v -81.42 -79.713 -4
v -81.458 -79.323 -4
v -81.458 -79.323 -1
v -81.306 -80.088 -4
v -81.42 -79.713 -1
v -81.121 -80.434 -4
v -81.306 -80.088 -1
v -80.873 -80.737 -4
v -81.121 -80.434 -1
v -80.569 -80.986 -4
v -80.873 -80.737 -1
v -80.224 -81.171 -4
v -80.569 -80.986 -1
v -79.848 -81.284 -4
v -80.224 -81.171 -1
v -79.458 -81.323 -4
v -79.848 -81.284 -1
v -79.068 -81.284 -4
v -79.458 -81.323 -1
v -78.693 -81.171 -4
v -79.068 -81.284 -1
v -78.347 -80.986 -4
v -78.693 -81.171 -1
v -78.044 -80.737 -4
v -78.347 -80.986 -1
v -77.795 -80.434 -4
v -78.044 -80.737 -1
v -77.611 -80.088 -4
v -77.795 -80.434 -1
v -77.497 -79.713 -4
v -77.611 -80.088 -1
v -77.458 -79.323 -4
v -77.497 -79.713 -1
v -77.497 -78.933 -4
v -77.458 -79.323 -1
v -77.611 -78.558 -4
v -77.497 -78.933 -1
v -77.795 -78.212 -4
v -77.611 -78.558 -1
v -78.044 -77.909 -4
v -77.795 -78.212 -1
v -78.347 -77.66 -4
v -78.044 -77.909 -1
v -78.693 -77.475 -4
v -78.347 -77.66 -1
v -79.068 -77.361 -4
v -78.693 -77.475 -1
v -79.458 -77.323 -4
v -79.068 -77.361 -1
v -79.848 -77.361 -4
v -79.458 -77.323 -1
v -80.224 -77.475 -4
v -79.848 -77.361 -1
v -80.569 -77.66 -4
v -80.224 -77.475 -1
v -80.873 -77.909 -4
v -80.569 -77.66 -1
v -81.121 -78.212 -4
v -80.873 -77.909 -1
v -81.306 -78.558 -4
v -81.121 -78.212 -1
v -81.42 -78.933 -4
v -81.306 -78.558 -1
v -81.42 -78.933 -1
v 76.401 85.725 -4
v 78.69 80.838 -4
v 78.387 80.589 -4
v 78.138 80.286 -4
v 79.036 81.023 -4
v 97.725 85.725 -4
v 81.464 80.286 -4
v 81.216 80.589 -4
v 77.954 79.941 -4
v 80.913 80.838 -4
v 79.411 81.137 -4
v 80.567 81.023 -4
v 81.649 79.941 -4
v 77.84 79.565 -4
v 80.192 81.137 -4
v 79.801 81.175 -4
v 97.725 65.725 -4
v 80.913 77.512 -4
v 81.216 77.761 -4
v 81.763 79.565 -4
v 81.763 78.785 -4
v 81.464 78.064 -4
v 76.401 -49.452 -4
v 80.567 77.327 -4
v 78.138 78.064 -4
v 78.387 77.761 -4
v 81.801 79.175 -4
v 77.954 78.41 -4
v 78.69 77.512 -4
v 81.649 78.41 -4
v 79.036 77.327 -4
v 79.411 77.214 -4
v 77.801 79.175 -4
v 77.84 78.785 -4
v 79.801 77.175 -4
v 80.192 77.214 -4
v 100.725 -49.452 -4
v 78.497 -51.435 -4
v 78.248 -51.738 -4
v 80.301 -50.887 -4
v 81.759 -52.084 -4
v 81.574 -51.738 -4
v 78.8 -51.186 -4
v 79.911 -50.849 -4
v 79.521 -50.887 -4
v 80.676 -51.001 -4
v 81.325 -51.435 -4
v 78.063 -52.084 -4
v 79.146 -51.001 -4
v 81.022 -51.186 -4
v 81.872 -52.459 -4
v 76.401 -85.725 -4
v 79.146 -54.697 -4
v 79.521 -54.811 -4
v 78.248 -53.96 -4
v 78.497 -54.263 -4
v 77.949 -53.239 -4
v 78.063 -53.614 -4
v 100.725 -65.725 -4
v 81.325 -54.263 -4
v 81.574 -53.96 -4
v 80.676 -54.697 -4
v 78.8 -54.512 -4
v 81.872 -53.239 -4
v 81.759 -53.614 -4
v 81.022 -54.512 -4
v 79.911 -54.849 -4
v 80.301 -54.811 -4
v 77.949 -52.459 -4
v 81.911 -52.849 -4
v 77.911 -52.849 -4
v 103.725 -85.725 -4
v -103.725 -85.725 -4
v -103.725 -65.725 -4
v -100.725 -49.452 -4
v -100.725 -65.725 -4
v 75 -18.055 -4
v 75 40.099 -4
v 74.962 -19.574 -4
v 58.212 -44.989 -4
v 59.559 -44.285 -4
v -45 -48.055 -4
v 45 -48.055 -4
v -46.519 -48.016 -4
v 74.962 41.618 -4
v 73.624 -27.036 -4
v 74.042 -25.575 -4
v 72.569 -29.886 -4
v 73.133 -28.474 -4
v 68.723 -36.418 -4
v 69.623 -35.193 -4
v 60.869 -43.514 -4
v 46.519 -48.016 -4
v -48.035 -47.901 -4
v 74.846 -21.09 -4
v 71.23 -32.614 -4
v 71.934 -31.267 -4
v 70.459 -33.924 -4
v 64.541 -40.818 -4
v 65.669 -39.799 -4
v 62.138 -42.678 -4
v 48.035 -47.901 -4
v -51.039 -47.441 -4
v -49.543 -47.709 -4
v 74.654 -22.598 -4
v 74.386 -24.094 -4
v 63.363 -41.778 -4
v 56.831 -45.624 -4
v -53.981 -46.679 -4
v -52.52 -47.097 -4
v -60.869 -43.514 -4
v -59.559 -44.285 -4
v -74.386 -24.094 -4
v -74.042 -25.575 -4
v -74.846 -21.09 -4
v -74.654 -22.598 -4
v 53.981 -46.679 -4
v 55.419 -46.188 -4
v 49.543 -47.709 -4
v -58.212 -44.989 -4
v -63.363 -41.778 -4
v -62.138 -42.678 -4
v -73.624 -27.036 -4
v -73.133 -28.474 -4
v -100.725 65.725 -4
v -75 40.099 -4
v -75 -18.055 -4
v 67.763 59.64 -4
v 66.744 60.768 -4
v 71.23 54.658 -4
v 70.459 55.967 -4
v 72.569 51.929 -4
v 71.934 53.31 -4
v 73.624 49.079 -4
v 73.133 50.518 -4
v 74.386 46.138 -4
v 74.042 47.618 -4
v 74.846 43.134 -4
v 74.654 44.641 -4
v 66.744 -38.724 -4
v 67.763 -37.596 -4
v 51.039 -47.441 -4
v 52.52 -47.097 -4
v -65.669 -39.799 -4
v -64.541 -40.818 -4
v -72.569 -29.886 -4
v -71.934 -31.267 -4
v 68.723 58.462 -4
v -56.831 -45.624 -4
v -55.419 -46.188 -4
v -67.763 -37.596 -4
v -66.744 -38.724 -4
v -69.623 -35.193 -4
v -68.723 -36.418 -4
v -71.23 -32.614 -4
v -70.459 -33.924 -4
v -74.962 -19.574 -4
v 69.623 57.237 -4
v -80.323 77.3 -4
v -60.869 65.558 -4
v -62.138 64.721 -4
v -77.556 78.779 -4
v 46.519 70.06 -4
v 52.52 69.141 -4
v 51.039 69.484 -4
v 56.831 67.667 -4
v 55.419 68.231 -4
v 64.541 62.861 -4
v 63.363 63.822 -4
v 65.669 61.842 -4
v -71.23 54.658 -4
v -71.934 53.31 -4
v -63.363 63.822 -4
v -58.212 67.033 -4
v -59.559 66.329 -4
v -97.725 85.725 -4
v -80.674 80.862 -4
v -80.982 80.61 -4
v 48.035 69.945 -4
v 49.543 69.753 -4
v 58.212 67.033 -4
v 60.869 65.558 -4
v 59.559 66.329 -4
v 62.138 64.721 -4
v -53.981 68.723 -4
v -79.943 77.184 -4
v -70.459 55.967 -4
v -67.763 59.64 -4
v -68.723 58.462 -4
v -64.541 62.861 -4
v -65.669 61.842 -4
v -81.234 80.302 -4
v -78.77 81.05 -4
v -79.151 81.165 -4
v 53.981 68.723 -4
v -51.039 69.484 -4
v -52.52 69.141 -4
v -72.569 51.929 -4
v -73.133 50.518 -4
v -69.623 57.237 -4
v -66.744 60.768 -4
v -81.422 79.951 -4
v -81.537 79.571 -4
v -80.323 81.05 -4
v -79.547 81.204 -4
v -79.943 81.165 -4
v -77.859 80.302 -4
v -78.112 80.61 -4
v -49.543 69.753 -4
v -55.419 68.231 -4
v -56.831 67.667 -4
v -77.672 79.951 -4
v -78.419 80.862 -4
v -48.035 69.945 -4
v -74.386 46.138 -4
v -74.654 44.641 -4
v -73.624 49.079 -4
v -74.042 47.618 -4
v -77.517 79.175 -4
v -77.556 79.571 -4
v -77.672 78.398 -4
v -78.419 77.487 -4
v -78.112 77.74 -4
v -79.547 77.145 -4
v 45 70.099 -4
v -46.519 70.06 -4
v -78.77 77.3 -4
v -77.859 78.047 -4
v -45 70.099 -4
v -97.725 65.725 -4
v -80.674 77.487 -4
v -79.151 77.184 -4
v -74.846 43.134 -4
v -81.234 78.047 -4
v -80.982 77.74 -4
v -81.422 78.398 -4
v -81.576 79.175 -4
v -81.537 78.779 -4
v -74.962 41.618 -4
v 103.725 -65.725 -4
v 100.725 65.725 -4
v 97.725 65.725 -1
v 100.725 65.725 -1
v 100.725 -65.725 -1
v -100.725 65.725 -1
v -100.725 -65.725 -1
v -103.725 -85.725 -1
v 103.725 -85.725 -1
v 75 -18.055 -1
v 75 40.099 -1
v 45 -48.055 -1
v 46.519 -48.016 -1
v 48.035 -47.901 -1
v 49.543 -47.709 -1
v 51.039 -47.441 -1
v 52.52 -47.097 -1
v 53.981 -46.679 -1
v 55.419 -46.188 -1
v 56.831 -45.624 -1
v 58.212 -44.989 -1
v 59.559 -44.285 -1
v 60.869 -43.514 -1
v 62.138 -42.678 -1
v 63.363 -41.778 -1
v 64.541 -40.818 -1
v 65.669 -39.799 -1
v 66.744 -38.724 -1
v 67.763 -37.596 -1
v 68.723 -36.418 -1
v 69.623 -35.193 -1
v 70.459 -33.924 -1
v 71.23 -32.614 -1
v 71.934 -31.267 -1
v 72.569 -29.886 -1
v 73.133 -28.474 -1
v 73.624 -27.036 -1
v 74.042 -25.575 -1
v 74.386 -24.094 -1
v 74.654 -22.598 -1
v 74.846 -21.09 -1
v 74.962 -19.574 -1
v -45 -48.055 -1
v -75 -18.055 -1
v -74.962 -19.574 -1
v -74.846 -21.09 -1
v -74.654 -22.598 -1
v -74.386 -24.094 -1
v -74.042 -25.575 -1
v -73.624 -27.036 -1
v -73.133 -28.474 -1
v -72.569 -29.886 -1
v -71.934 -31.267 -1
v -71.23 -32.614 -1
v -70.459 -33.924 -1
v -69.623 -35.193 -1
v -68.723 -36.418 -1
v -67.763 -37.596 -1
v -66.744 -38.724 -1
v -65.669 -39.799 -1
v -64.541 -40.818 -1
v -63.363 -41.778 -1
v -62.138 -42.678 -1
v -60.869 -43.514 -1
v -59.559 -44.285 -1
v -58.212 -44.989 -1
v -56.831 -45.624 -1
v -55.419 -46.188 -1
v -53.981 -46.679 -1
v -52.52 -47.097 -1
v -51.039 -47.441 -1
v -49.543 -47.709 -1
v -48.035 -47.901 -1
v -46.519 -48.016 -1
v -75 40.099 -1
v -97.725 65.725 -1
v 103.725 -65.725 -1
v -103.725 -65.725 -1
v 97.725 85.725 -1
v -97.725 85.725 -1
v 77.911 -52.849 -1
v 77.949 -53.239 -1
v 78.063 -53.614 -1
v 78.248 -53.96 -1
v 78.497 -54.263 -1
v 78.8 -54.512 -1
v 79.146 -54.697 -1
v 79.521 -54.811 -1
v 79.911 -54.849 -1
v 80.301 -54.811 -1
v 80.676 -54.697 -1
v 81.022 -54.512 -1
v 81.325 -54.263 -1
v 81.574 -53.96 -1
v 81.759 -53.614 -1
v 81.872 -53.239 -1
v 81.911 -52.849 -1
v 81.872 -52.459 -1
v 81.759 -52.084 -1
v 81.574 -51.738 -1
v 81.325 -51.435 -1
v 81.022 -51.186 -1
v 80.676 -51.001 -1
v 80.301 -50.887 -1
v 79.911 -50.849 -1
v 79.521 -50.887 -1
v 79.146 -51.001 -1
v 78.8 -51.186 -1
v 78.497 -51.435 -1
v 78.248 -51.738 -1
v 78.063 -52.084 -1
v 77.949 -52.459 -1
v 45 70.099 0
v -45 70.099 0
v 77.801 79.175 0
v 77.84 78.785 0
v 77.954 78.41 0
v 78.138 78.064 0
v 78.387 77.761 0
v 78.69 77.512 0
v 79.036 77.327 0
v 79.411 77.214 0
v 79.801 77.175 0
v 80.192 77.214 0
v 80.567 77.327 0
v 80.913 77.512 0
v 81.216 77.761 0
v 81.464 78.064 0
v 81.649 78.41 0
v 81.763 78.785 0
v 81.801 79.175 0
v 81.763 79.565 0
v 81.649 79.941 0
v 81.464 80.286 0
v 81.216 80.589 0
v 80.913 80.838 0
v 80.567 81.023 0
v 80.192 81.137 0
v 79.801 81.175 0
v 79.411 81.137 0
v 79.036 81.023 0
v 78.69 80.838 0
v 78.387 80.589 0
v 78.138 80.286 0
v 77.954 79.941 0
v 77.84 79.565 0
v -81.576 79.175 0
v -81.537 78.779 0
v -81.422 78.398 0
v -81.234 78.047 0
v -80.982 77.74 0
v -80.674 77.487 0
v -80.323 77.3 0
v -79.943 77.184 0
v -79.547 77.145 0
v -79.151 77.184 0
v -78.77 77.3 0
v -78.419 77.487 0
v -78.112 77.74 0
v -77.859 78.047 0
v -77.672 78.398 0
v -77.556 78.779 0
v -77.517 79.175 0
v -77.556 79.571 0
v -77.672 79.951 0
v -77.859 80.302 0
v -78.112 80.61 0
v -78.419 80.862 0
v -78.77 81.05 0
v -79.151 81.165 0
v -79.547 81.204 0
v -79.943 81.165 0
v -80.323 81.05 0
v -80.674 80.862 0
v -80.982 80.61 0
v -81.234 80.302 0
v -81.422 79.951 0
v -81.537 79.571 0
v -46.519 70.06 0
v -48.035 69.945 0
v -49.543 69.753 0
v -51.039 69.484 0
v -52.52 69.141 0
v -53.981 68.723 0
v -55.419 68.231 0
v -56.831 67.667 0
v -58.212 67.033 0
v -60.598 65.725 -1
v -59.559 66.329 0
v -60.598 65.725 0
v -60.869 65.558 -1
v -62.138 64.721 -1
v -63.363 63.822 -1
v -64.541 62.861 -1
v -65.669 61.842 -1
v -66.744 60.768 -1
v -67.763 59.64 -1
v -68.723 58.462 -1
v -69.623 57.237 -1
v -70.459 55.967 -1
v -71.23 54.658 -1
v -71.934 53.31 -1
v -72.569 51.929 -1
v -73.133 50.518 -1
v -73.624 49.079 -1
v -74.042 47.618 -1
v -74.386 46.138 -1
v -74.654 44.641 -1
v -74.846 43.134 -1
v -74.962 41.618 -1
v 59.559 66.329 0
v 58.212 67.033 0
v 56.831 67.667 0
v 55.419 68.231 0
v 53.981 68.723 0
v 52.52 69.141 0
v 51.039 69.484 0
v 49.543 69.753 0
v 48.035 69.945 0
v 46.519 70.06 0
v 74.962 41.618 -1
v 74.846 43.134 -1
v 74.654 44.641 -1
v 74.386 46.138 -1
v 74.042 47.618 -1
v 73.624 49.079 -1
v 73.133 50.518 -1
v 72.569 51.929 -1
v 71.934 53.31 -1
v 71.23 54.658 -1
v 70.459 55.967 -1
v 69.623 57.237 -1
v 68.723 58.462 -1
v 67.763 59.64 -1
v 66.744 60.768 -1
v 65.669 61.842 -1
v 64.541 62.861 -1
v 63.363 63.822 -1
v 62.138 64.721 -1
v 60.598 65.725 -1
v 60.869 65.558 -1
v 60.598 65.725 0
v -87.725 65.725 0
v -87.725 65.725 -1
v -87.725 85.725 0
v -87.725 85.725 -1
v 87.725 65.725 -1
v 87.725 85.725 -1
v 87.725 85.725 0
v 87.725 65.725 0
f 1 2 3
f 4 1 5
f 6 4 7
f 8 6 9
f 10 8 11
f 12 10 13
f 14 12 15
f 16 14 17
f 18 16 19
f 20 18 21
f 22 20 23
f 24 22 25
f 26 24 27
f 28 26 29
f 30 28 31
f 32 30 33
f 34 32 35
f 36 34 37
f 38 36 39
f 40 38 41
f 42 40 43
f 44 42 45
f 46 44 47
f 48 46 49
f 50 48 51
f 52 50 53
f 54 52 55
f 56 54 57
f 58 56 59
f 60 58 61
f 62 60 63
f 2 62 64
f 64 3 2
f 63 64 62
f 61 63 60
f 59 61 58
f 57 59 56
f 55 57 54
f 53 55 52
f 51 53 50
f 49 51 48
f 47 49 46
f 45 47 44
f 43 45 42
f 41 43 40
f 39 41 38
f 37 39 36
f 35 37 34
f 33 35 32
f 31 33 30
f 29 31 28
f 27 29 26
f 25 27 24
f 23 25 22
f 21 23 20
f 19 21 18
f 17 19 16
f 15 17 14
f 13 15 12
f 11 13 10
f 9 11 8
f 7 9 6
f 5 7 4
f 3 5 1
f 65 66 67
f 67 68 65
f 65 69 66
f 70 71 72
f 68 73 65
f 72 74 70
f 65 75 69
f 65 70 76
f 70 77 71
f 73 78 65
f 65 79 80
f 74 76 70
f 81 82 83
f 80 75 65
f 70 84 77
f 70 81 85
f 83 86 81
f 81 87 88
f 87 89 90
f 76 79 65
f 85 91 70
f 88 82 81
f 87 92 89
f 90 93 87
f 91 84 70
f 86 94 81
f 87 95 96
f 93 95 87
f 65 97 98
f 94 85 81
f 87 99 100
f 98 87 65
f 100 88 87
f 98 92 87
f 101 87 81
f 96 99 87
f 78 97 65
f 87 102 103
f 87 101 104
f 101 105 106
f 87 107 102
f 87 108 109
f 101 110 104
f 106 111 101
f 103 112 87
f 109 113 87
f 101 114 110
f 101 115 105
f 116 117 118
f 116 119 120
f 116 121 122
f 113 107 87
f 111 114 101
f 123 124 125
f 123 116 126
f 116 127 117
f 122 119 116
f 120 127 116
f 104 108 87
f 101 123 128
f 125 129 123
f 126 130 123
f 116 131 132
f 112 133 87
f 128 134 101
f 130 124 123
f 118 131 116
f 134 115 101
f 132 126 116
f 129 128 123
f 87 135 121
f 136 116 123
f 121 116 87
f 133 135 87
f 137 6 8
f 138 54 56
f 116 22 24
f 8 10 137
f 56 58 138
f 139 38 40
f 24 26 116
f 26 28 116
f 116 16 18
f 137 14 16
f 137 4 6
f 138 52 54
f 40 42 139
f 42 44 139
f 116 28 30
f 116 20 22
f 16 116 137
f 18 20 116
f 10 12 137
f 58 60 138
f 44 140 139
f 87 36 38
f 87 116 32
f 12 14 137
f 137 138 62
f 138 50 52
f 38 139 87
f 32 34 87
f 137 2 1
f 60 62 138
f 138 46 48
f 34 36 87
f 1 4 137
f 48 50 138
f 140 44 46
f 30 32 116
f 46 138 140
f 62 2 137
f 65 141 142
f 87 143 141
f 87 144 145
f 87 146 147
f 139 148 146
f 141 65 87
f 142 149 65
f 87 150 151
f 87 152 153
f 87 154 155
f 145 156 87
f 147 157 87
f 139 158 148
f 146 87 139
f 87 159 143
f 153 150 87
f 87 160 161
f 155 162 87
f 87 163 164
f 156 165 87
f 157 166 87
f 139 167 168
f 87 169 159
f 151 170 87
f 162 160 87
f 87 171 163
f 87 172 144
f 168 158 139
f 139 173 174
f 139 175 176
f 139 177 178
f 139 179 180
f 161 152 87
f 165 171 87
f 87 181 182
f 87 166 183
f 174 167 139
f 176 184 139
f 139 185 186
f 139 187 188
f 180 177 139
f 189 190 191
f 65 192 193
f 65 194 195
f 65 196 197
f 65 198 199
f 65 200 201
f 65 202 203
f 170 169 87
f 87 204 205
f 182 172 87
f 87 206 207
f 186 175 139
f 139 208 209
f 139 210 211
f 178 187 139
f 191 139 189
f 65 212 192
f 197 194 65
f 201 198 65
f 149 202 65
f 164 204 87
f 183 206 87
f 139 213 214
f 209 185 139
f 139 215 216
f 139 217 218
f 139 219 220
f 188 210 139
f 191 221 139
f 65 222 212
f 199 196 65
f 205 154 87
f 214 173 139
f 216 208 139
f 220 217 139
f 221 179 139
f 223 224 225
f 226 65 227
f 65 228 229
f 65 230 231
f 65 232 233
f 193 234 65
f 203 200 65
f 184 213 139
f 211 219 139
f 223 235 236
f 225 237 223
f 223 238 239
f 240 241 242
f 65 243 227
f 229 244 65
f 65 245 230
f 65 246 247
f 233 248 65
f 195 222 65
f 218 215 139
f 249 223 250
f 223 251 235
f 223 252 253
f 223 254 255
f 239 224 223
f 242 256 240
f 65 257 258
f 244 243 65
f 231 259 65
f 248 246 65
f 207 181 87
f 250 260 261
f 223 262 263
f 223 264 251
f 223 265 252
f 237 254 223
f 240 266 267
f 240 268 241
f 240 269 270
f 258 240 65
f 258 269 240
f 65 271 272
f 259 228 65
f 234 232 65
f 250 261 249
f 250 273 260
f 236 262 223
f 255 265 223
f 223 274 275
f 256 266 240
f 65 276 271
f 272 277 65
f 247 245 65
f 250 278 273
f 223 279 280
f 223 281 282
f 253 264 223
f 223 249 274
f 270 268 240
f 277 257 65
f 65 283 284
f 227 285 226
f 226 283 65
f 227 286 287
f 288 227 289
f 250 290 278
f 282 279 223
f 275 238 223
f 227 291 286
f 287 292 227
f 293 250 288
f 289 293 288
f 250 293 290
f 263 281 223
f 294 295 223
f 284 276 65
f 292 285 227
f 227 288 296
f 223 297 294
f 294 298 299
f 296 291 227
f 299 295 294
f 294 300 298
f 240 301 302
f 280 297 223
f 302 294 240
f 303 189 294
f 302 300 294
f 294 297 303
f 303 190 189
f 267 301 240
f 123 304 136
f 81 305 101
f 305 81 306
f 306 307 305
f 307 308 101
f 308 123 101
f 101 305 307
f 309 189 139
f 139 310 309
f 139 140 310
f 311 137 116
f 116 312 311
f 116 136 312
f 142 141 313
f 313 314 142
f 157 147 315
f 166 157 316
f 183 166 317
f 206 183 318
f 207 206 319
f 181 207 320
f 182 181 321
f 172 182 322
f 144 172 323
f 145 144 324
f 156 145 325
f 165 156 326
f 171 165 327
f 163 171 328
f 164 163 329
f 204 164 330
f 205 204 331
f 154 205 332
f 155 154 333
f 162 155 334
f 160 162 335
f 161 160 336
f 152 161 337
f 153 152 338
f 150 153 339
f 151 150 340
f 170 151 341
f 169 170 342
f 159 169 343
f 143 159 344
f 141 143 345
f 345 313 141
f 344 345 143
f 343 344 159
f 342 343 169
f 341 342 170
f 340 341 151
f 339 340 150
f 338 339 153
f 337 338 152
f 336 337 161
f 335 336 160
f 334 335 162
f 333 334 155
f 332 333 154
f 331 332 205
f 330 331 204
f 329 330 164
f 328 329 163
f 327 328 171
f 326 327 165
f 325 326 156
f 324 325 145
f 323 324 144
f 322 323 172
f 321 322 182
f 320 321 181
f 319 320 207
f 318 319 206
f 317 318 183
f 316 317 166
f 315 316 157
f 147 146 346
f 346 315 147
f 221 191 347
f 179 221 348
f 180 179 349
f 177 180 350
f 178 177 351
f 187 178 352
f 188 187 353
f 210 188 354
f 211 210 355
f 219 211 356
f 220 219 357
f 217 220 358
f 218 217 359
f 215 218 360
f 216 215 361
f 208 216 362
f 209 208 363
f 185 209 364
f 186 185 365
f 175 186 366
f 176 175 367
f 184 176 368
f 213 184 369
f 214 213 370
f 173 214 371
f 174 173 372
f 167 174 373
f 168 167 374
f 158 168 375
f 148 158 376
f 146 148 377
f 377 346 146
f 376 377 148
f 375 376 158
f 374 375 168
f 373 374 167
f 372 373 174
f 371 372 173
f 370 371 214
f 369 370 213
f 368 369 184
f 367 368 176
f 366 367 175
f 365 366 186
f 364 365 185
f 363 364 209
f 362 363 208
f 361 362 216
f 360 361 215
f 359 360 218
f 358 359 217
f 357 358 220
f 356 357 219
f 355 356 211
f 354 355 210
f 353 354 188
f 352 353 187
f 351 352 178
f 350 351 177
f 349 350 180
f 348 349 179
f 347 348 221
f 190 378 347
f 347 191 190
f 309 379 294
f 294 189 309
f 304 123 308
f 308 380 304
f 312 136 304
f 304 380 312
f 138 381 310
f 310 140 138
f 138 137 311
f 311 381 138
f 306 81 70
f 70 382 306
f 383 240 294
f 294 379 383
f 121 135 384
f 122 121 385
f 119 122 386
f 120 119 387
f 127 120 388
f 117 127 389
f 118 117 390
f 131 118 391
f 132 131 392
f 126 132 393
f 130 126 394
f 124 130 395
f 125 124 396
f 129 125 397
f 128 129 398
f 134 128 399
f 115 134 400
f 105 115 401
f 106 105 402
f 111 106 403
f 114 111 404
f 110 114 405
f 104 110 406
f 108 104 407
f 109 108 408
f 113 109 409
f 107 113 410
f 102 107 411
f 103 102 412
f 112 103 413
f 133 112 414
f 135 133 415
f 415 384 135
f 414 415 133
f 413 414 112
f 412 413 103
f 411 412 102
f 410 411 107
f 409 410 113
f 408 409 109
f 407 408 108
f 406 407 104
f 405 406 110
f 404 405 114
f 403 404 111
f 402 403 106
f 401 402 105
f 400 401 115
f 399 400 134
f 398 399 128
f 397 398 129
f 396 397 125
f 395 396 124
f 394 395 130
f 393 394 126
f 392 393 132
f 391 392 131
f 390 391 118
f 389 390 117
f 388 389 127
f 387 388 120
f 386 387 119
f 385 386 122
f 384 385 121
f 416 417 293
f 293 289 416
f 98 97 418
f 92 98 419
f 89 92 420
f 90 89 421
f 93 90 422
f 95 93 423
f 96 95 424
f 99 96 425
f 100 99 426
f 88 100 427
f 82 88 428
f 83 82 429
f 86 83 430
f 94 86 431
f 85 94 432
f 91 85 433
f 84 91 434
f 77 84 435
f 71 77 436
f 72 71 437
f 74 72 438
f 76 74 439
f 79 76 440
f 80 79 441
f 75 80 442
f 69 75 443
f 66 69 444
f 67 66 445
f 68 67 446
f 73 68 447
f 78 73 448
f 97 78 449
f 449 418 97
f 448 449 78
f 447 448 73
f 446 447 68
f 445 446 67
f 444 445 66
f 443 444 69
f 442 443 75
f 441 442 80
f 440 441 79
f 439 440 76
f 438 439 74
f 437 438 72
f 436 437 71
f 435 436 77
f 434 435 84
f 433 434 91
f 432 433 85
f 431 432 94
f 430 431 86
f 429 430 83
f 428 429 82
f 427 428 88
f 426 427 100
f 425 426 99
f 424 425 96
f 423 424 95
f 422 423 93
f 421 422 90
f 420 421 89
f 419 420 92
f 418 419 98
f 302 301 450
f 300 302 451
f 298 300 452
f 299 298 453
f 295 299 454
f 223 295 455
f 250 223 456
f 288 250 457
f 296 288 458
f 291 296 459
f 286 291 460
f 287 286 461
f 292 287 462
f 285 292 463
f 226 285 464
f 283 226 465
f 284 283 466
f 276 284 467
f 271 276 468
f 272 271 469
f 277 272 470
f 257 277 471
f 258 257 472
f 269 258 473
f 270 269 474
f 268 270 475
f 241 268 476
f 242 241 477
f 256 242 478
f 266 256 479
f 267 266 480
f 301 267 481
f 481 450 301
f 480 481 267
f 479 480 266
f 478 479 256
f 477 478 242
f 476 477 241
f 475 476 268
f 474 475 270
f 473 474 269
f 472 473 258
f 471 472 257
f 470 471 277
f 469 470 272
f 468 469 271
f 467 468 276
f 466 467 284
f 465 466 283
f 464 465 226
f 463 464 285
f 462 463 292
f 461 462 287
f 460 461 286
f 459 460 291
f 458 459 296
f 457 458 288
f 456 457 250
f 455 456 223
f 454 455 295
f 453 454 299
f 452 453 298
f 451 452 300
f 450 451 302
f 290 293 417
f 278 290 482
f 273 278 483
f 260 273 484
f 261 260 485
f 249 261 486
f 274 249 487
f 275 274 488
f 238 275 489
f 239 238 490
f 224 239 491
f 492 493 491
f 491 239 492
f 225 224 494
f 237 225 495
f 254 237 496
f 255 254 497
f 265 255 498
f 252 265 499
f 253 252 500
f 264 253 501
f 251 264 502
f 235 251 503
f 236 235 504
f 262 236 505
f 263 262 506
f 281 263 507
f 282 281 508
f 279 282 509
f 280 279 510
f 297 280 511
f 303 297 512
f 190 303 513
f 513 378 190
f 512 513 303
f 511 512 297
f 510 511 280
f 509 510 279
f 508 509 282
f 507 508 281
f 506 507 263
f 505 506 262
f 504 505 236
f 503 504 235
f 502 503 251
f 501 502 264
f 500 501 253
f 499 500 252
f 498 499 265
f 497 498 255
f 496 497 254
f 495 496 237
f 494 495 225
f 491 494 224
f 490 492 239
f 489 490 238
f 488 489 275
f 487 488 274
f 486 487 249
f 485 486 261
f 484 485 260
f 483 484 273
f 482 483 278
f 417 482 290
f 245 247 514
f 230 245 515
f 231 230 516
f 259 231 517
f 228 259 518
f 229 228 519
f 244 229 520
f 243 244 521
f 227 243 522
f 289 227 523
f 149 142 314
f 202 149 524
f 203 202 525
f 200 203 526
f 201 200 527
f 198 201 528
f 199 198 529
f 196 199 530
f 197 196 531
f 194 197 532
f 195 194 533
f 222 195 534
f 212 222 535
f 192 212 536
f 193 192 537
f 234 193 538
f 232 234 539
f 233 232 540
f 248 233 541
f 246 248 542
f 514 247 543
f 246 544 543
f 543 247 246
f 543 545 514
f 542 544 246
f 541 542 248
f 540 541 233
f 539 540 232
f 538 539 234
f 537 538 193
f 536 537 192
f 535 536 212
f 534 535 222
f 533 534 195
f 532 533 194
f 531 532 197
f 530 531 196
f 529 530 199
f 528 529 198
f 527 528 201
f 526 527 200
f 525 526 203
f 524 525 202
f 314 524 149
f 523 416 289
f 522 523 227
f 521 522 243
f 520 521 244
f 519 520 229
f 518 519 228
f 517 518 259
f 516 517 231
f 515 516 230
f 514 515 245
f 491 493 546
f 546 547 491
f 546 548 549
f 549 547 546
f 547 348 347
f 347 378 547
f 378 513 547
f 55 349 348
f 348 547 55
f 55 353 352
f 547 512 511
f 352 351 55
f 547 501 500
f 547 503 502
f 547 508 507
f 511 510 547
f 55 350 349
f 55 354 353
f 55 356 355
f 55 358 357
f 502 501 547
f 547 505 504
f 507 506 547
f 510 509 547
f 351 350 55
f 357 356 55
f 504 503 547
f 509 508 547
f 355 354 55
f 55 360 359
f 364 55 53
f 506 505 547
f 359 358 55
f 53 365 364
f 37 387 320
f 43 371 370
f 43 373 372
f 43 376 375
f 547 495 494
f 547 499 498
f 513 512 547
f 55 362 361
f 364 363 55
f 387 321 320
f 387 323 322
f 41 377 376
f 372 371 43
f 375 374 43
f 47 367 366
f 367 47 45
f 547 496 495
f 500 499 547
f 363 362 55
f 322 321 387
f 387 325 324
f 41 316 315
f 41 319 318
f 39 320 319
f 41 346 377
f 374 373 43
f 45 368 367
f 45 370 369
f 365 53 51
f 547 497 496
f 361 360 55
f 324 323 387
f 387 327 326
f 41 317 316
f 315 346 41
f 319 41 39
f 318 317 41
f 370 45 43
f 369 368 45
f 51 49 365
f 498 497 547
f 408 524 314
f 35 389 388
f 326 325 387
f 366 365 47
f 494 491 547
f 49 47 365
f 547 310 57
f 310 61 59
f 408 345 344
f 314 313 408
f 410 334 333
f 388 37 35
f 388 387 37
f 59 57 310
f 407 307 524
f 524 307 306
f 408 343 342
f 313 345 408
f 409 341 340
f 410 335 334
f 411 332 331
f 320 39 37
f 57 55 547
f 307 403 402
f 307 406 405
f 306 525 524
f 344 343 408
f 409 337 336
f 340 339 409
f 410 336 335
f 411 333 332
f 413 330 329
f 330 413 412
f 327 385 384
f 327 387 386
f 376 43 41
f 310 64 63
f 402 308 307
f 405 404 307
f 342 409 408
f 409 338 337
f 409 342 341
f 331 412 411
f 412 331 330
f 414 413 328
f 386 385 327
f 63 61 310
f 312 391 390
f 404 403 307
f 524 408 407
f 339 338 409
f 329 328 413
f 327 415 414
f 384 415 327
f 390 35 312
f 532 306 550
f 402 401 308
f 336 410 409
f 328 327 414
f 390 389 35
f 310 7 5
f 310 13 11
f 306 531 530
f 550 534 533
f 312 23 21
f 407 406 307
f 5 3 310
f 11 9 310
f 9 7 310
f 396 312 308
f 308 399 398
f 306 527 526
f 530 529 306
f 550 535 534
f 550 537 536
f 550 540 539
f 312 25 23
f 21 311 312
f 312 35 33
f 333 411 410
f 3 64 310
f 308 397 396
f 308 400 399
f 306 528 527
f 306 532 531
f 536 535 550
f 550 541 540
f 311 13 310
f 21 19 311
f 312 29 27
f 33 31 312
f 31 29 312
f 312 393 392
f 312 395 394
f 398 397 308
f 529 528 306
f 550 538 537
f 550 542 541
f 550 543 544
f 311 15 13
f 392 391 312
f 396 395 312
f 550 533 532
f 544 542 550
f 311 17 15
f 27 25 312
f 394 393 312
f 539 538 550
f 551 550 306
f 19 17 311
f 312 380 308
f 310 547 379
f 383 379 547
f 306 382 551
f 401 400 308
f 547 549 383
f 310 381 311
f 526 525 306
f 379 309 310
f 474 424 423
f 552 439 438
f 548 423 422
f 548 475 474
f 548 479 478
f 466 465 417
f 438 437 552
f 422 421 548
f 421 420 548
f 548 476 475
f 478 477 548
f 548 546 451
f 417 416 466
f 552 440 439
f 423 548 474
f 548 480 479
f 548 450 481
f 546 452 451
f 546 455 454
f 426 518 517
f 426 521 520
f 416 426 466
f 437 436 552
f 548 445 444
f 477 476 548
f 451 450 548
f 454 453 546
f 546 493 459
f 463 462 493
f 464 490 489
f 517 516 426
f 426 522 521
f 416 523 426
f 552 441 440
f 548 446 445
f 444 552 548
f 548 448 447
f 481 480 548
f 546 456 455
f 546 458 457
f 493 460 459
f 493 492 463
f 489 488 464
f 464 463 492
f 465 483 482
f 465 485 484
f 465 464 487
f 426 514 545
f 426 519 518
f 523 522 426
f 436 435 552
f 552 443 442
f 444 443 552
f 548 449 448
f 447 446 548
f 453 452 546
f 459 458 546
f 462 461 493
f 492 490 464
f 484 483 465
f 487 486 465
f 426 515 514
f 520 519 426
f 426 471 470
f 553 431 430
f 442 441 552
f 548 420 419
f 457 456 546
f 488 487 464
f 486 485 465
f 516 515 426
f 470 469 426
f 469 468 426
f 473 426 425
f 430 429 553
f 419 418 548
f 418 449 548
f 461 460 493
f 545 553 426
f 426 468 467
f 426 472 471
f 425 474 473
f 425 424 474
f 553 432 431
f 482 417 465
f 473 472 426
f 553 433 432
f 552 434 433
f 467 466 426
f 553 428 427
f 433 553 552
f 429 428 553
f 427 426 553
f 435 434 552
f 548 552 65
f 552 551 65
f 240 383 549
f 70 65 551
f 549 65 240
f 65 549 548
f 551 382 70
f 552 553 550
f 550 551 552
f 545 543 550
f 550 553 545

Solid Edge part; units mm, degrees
sketch "Sketch1" plane through (0, 0, 0) normal (0, 0, -1) x (-1, 0, 0)
  line L0 (-85.725, -85.725) -> (85.725, -85.725)
  line L1 (85.725, -85.725) -> (85.725, 85.725)
  line L2 (85.725, 85.725) -> (-85.725, 85.725)
  line L3 (-85.725, 85.725) -> (-85.725, -85.725)
  dimension "D1" = 171.45
  dimension "D2" = 171.45
extrude "ExtrudedProtrusion_18" add sketch "Sketch1" along normal blind 4
sketch "Sketch2" plane through (0, 0, -4) normal (0, 0, -1) x (0, -1, 0)
  line L0 (-70.0986, 45) -> (-70.0986, -45)
  arc A0 (-70.0986, -45) -> (-40.0986, -75) centre (-40.0986, -45) ccw
  line L1 (18.055, -75) -> (-40.0986, -75)
  arc A1 (18.055, -75) -> (48.055, -45) centre (18.055, -45) ccw
  line L2 (48.055, -45) -> (48.055, 45)
  arc A2 (18.055, 75) -> (48.055, 45) centre (18.055, 45) cw
  line L3 (-40.0986, 75) -> (18.055, 75)
  arc A3 (-40.0986, 75) -> (-70.0986, 45) centre (-40.0986, 45) ccw
  dimension "D1" = 90
  dimension "D2" = 58.1535
  dimension "D3" = 171.45
  dimension "D4" = 90
  dimension "D5" = 10.725
  dimension "D6" = 30
  dimension "D7" = 30
  dimension "D8" = 30
  dimension "D9" = 30
extrude "Cutout1" cut sketch "Sketch2" against normal blind 18
sketch "Sketch3" plane through (-85.725, 77.9118, -2) normal (-1, 0, 0) x (0, -1, 0)
  line L0 (-7.8132, 2) -> (163.6368, 2)
  line L1 (163.6368, 2) -> (163.6368, -2)
  line L2 (163.6368, -2) -> (-7.8132, -2)
  line L3 (-7.8132, -2) -> (-7.8132, 2)
  dimension "D1" = 171.45
  dimension "D2" = 4
extrude "ExtrudedProtrusion_19" add sketch "Sketch3" along normal blind 15
sketch "Sketch4" plane through (85.725, -66.89, -2) normal (1, 0, 0) x (0, -1, 0)
  line L0 (-152.615, 2) -> (18.835, 2)
  line L1 (18.835, 2) -> (18.835, -2)
  line L2 (18.835, -2) -> (-152.615, -2)
  line L3 (-152.615, -2) -> (-152.615, 2)
  dimension "D1" = 171.45
  dimension "D2" = 4
extrude "Protrusion1" add sketch "Sketch4" along normal blind 15
sketch "Sketch5" plane through (0, 0, -4) normal (0, 0, -1) x (0, 1, 0)
  line L0 (85.725, 100.725) -> (65.725, 100.725)
  line L1 (65.725, 100.725) -> (65.725, 87.725)
  line L2 (65.725, 87.725) -> (85.725, 87.725)
  line L3 (85.725, 87.725) -> (85.725, 100.725)
  line L4 (85.725, -100.725) -> (65.725, -100.725)
  line L5 (65.725, -100.725) -> (65.725, -87.725)
  line L6 (65.725, -87.725) -> (85.725, -87.725)
  line L7 (85.725, -87.725) -> (85.725, -100.725)
  dimension "D1" = 20
  dimension "D2" = 13
extrude "Cutout2" cut sketch "Sketch5" against normal blind 20
sketch "Sketch6" plane through (0, 0.5, -4) normal (0, 0, -1) x (0, -1, 0)
  circle A0 centre (79.8229, 79.4583) radius 2
  circle A1 centre (-78.6752, -79.8014) radius 2
  circle A2 centre (53.349, -79.9109) radius 2
  circle A3 centre (-78.6746, 79.5467) radius 2.0294
  dimension "D1" = 4.0588
  dimension "D2" = 4
  dimension "D3" = 4
  dimension "D4" = 4
extrude "ExtrudedCutout_38" cut sketch "Sketch6" against normal blind 50
sketch "Sketch7" plane through (100.725, -10, 6) normal (1, 0, 0) x (0, -1, 0)
  line L0 (75.725, 10) -> (55.725, 10)
  line L1 (55.725, 10) -> (55.725, 6)
  line L2 (55.725, 6) -> (75.725, 6)
  line L3 (75.725, 6) -> (75.725, 10)
  dimension "D1" = 20
  dimension "D2" = 4
extrude "ExtrudedProtrusion_23" add sketch "Sketch7" along normal mid plane 6
sketch "Sketch8" plane through (-100.725, -10, 6) normal (-1, 0, 0) x (0, 1, 0)
  line L0 (-75.725, 10) -> (-55.725, 10)
  line L1 (-55.725, 10) -> (-55.725, 6)
  line L2 (-55.725, 6) -> (-75.725, 6)
  line L3 (-75.725, 6) -> (-75.725, 10)
  dimension "D1" = 20
  dimension "D2" = 4
extrude "ExtrudedProtrusion_24" add sketch "Sketch8" along normal mid plane 6
sketch "Sketch9" plane through (-94.225, 65.725, -2) normal (0, 1, 0) x (0, 0, -1)
  line L0 (-2, -197.95) -> (-1, -197.95)
  line L1 (-1, -197.95) -> (-1, 28.925)
  line L2 (-1, 28.925) -> (-2, 28.925)
  line L3 (-2, 28.925) -> (-2, -197.95)
  dimension "D1" = 1
  dimension "D2" = 226.875
extrude "Cutout3" cut sketch "Sketch9" against normal blind 555
sketch "Sketch10" plane through (0, 0, -4) normal (0, 0, -1) x (1, 0, 0)
  line L0 (87.725, -65.725) -> (97.725, -65.725)
  line L1 (97.725, -65.725) -> (97.725, -85.725)
  line L2 (97.725, -85.725) -> (87.725, -85.725)
  line L3 (87.725, -85.725) -> (87.725, -65.725)
  line L4 (-87.725, -65.725) -> (-97.725, -65.725)
  line L5 (-97.725, -65.725) -> (-97.725, -85.725)
  line L6 (-97.725, -85.725) -> (-87.725, -85.725)
  line L7 (-87.725, -85.725) -> (-87.725, -65.725)
  dimension "D1" = 10
  dimension "D2" = 20
  dimension "D3" = 10
  dimension "D4" = 20
extrude "Protrusion2" add sketch "Sketch10" against normal blind 3
